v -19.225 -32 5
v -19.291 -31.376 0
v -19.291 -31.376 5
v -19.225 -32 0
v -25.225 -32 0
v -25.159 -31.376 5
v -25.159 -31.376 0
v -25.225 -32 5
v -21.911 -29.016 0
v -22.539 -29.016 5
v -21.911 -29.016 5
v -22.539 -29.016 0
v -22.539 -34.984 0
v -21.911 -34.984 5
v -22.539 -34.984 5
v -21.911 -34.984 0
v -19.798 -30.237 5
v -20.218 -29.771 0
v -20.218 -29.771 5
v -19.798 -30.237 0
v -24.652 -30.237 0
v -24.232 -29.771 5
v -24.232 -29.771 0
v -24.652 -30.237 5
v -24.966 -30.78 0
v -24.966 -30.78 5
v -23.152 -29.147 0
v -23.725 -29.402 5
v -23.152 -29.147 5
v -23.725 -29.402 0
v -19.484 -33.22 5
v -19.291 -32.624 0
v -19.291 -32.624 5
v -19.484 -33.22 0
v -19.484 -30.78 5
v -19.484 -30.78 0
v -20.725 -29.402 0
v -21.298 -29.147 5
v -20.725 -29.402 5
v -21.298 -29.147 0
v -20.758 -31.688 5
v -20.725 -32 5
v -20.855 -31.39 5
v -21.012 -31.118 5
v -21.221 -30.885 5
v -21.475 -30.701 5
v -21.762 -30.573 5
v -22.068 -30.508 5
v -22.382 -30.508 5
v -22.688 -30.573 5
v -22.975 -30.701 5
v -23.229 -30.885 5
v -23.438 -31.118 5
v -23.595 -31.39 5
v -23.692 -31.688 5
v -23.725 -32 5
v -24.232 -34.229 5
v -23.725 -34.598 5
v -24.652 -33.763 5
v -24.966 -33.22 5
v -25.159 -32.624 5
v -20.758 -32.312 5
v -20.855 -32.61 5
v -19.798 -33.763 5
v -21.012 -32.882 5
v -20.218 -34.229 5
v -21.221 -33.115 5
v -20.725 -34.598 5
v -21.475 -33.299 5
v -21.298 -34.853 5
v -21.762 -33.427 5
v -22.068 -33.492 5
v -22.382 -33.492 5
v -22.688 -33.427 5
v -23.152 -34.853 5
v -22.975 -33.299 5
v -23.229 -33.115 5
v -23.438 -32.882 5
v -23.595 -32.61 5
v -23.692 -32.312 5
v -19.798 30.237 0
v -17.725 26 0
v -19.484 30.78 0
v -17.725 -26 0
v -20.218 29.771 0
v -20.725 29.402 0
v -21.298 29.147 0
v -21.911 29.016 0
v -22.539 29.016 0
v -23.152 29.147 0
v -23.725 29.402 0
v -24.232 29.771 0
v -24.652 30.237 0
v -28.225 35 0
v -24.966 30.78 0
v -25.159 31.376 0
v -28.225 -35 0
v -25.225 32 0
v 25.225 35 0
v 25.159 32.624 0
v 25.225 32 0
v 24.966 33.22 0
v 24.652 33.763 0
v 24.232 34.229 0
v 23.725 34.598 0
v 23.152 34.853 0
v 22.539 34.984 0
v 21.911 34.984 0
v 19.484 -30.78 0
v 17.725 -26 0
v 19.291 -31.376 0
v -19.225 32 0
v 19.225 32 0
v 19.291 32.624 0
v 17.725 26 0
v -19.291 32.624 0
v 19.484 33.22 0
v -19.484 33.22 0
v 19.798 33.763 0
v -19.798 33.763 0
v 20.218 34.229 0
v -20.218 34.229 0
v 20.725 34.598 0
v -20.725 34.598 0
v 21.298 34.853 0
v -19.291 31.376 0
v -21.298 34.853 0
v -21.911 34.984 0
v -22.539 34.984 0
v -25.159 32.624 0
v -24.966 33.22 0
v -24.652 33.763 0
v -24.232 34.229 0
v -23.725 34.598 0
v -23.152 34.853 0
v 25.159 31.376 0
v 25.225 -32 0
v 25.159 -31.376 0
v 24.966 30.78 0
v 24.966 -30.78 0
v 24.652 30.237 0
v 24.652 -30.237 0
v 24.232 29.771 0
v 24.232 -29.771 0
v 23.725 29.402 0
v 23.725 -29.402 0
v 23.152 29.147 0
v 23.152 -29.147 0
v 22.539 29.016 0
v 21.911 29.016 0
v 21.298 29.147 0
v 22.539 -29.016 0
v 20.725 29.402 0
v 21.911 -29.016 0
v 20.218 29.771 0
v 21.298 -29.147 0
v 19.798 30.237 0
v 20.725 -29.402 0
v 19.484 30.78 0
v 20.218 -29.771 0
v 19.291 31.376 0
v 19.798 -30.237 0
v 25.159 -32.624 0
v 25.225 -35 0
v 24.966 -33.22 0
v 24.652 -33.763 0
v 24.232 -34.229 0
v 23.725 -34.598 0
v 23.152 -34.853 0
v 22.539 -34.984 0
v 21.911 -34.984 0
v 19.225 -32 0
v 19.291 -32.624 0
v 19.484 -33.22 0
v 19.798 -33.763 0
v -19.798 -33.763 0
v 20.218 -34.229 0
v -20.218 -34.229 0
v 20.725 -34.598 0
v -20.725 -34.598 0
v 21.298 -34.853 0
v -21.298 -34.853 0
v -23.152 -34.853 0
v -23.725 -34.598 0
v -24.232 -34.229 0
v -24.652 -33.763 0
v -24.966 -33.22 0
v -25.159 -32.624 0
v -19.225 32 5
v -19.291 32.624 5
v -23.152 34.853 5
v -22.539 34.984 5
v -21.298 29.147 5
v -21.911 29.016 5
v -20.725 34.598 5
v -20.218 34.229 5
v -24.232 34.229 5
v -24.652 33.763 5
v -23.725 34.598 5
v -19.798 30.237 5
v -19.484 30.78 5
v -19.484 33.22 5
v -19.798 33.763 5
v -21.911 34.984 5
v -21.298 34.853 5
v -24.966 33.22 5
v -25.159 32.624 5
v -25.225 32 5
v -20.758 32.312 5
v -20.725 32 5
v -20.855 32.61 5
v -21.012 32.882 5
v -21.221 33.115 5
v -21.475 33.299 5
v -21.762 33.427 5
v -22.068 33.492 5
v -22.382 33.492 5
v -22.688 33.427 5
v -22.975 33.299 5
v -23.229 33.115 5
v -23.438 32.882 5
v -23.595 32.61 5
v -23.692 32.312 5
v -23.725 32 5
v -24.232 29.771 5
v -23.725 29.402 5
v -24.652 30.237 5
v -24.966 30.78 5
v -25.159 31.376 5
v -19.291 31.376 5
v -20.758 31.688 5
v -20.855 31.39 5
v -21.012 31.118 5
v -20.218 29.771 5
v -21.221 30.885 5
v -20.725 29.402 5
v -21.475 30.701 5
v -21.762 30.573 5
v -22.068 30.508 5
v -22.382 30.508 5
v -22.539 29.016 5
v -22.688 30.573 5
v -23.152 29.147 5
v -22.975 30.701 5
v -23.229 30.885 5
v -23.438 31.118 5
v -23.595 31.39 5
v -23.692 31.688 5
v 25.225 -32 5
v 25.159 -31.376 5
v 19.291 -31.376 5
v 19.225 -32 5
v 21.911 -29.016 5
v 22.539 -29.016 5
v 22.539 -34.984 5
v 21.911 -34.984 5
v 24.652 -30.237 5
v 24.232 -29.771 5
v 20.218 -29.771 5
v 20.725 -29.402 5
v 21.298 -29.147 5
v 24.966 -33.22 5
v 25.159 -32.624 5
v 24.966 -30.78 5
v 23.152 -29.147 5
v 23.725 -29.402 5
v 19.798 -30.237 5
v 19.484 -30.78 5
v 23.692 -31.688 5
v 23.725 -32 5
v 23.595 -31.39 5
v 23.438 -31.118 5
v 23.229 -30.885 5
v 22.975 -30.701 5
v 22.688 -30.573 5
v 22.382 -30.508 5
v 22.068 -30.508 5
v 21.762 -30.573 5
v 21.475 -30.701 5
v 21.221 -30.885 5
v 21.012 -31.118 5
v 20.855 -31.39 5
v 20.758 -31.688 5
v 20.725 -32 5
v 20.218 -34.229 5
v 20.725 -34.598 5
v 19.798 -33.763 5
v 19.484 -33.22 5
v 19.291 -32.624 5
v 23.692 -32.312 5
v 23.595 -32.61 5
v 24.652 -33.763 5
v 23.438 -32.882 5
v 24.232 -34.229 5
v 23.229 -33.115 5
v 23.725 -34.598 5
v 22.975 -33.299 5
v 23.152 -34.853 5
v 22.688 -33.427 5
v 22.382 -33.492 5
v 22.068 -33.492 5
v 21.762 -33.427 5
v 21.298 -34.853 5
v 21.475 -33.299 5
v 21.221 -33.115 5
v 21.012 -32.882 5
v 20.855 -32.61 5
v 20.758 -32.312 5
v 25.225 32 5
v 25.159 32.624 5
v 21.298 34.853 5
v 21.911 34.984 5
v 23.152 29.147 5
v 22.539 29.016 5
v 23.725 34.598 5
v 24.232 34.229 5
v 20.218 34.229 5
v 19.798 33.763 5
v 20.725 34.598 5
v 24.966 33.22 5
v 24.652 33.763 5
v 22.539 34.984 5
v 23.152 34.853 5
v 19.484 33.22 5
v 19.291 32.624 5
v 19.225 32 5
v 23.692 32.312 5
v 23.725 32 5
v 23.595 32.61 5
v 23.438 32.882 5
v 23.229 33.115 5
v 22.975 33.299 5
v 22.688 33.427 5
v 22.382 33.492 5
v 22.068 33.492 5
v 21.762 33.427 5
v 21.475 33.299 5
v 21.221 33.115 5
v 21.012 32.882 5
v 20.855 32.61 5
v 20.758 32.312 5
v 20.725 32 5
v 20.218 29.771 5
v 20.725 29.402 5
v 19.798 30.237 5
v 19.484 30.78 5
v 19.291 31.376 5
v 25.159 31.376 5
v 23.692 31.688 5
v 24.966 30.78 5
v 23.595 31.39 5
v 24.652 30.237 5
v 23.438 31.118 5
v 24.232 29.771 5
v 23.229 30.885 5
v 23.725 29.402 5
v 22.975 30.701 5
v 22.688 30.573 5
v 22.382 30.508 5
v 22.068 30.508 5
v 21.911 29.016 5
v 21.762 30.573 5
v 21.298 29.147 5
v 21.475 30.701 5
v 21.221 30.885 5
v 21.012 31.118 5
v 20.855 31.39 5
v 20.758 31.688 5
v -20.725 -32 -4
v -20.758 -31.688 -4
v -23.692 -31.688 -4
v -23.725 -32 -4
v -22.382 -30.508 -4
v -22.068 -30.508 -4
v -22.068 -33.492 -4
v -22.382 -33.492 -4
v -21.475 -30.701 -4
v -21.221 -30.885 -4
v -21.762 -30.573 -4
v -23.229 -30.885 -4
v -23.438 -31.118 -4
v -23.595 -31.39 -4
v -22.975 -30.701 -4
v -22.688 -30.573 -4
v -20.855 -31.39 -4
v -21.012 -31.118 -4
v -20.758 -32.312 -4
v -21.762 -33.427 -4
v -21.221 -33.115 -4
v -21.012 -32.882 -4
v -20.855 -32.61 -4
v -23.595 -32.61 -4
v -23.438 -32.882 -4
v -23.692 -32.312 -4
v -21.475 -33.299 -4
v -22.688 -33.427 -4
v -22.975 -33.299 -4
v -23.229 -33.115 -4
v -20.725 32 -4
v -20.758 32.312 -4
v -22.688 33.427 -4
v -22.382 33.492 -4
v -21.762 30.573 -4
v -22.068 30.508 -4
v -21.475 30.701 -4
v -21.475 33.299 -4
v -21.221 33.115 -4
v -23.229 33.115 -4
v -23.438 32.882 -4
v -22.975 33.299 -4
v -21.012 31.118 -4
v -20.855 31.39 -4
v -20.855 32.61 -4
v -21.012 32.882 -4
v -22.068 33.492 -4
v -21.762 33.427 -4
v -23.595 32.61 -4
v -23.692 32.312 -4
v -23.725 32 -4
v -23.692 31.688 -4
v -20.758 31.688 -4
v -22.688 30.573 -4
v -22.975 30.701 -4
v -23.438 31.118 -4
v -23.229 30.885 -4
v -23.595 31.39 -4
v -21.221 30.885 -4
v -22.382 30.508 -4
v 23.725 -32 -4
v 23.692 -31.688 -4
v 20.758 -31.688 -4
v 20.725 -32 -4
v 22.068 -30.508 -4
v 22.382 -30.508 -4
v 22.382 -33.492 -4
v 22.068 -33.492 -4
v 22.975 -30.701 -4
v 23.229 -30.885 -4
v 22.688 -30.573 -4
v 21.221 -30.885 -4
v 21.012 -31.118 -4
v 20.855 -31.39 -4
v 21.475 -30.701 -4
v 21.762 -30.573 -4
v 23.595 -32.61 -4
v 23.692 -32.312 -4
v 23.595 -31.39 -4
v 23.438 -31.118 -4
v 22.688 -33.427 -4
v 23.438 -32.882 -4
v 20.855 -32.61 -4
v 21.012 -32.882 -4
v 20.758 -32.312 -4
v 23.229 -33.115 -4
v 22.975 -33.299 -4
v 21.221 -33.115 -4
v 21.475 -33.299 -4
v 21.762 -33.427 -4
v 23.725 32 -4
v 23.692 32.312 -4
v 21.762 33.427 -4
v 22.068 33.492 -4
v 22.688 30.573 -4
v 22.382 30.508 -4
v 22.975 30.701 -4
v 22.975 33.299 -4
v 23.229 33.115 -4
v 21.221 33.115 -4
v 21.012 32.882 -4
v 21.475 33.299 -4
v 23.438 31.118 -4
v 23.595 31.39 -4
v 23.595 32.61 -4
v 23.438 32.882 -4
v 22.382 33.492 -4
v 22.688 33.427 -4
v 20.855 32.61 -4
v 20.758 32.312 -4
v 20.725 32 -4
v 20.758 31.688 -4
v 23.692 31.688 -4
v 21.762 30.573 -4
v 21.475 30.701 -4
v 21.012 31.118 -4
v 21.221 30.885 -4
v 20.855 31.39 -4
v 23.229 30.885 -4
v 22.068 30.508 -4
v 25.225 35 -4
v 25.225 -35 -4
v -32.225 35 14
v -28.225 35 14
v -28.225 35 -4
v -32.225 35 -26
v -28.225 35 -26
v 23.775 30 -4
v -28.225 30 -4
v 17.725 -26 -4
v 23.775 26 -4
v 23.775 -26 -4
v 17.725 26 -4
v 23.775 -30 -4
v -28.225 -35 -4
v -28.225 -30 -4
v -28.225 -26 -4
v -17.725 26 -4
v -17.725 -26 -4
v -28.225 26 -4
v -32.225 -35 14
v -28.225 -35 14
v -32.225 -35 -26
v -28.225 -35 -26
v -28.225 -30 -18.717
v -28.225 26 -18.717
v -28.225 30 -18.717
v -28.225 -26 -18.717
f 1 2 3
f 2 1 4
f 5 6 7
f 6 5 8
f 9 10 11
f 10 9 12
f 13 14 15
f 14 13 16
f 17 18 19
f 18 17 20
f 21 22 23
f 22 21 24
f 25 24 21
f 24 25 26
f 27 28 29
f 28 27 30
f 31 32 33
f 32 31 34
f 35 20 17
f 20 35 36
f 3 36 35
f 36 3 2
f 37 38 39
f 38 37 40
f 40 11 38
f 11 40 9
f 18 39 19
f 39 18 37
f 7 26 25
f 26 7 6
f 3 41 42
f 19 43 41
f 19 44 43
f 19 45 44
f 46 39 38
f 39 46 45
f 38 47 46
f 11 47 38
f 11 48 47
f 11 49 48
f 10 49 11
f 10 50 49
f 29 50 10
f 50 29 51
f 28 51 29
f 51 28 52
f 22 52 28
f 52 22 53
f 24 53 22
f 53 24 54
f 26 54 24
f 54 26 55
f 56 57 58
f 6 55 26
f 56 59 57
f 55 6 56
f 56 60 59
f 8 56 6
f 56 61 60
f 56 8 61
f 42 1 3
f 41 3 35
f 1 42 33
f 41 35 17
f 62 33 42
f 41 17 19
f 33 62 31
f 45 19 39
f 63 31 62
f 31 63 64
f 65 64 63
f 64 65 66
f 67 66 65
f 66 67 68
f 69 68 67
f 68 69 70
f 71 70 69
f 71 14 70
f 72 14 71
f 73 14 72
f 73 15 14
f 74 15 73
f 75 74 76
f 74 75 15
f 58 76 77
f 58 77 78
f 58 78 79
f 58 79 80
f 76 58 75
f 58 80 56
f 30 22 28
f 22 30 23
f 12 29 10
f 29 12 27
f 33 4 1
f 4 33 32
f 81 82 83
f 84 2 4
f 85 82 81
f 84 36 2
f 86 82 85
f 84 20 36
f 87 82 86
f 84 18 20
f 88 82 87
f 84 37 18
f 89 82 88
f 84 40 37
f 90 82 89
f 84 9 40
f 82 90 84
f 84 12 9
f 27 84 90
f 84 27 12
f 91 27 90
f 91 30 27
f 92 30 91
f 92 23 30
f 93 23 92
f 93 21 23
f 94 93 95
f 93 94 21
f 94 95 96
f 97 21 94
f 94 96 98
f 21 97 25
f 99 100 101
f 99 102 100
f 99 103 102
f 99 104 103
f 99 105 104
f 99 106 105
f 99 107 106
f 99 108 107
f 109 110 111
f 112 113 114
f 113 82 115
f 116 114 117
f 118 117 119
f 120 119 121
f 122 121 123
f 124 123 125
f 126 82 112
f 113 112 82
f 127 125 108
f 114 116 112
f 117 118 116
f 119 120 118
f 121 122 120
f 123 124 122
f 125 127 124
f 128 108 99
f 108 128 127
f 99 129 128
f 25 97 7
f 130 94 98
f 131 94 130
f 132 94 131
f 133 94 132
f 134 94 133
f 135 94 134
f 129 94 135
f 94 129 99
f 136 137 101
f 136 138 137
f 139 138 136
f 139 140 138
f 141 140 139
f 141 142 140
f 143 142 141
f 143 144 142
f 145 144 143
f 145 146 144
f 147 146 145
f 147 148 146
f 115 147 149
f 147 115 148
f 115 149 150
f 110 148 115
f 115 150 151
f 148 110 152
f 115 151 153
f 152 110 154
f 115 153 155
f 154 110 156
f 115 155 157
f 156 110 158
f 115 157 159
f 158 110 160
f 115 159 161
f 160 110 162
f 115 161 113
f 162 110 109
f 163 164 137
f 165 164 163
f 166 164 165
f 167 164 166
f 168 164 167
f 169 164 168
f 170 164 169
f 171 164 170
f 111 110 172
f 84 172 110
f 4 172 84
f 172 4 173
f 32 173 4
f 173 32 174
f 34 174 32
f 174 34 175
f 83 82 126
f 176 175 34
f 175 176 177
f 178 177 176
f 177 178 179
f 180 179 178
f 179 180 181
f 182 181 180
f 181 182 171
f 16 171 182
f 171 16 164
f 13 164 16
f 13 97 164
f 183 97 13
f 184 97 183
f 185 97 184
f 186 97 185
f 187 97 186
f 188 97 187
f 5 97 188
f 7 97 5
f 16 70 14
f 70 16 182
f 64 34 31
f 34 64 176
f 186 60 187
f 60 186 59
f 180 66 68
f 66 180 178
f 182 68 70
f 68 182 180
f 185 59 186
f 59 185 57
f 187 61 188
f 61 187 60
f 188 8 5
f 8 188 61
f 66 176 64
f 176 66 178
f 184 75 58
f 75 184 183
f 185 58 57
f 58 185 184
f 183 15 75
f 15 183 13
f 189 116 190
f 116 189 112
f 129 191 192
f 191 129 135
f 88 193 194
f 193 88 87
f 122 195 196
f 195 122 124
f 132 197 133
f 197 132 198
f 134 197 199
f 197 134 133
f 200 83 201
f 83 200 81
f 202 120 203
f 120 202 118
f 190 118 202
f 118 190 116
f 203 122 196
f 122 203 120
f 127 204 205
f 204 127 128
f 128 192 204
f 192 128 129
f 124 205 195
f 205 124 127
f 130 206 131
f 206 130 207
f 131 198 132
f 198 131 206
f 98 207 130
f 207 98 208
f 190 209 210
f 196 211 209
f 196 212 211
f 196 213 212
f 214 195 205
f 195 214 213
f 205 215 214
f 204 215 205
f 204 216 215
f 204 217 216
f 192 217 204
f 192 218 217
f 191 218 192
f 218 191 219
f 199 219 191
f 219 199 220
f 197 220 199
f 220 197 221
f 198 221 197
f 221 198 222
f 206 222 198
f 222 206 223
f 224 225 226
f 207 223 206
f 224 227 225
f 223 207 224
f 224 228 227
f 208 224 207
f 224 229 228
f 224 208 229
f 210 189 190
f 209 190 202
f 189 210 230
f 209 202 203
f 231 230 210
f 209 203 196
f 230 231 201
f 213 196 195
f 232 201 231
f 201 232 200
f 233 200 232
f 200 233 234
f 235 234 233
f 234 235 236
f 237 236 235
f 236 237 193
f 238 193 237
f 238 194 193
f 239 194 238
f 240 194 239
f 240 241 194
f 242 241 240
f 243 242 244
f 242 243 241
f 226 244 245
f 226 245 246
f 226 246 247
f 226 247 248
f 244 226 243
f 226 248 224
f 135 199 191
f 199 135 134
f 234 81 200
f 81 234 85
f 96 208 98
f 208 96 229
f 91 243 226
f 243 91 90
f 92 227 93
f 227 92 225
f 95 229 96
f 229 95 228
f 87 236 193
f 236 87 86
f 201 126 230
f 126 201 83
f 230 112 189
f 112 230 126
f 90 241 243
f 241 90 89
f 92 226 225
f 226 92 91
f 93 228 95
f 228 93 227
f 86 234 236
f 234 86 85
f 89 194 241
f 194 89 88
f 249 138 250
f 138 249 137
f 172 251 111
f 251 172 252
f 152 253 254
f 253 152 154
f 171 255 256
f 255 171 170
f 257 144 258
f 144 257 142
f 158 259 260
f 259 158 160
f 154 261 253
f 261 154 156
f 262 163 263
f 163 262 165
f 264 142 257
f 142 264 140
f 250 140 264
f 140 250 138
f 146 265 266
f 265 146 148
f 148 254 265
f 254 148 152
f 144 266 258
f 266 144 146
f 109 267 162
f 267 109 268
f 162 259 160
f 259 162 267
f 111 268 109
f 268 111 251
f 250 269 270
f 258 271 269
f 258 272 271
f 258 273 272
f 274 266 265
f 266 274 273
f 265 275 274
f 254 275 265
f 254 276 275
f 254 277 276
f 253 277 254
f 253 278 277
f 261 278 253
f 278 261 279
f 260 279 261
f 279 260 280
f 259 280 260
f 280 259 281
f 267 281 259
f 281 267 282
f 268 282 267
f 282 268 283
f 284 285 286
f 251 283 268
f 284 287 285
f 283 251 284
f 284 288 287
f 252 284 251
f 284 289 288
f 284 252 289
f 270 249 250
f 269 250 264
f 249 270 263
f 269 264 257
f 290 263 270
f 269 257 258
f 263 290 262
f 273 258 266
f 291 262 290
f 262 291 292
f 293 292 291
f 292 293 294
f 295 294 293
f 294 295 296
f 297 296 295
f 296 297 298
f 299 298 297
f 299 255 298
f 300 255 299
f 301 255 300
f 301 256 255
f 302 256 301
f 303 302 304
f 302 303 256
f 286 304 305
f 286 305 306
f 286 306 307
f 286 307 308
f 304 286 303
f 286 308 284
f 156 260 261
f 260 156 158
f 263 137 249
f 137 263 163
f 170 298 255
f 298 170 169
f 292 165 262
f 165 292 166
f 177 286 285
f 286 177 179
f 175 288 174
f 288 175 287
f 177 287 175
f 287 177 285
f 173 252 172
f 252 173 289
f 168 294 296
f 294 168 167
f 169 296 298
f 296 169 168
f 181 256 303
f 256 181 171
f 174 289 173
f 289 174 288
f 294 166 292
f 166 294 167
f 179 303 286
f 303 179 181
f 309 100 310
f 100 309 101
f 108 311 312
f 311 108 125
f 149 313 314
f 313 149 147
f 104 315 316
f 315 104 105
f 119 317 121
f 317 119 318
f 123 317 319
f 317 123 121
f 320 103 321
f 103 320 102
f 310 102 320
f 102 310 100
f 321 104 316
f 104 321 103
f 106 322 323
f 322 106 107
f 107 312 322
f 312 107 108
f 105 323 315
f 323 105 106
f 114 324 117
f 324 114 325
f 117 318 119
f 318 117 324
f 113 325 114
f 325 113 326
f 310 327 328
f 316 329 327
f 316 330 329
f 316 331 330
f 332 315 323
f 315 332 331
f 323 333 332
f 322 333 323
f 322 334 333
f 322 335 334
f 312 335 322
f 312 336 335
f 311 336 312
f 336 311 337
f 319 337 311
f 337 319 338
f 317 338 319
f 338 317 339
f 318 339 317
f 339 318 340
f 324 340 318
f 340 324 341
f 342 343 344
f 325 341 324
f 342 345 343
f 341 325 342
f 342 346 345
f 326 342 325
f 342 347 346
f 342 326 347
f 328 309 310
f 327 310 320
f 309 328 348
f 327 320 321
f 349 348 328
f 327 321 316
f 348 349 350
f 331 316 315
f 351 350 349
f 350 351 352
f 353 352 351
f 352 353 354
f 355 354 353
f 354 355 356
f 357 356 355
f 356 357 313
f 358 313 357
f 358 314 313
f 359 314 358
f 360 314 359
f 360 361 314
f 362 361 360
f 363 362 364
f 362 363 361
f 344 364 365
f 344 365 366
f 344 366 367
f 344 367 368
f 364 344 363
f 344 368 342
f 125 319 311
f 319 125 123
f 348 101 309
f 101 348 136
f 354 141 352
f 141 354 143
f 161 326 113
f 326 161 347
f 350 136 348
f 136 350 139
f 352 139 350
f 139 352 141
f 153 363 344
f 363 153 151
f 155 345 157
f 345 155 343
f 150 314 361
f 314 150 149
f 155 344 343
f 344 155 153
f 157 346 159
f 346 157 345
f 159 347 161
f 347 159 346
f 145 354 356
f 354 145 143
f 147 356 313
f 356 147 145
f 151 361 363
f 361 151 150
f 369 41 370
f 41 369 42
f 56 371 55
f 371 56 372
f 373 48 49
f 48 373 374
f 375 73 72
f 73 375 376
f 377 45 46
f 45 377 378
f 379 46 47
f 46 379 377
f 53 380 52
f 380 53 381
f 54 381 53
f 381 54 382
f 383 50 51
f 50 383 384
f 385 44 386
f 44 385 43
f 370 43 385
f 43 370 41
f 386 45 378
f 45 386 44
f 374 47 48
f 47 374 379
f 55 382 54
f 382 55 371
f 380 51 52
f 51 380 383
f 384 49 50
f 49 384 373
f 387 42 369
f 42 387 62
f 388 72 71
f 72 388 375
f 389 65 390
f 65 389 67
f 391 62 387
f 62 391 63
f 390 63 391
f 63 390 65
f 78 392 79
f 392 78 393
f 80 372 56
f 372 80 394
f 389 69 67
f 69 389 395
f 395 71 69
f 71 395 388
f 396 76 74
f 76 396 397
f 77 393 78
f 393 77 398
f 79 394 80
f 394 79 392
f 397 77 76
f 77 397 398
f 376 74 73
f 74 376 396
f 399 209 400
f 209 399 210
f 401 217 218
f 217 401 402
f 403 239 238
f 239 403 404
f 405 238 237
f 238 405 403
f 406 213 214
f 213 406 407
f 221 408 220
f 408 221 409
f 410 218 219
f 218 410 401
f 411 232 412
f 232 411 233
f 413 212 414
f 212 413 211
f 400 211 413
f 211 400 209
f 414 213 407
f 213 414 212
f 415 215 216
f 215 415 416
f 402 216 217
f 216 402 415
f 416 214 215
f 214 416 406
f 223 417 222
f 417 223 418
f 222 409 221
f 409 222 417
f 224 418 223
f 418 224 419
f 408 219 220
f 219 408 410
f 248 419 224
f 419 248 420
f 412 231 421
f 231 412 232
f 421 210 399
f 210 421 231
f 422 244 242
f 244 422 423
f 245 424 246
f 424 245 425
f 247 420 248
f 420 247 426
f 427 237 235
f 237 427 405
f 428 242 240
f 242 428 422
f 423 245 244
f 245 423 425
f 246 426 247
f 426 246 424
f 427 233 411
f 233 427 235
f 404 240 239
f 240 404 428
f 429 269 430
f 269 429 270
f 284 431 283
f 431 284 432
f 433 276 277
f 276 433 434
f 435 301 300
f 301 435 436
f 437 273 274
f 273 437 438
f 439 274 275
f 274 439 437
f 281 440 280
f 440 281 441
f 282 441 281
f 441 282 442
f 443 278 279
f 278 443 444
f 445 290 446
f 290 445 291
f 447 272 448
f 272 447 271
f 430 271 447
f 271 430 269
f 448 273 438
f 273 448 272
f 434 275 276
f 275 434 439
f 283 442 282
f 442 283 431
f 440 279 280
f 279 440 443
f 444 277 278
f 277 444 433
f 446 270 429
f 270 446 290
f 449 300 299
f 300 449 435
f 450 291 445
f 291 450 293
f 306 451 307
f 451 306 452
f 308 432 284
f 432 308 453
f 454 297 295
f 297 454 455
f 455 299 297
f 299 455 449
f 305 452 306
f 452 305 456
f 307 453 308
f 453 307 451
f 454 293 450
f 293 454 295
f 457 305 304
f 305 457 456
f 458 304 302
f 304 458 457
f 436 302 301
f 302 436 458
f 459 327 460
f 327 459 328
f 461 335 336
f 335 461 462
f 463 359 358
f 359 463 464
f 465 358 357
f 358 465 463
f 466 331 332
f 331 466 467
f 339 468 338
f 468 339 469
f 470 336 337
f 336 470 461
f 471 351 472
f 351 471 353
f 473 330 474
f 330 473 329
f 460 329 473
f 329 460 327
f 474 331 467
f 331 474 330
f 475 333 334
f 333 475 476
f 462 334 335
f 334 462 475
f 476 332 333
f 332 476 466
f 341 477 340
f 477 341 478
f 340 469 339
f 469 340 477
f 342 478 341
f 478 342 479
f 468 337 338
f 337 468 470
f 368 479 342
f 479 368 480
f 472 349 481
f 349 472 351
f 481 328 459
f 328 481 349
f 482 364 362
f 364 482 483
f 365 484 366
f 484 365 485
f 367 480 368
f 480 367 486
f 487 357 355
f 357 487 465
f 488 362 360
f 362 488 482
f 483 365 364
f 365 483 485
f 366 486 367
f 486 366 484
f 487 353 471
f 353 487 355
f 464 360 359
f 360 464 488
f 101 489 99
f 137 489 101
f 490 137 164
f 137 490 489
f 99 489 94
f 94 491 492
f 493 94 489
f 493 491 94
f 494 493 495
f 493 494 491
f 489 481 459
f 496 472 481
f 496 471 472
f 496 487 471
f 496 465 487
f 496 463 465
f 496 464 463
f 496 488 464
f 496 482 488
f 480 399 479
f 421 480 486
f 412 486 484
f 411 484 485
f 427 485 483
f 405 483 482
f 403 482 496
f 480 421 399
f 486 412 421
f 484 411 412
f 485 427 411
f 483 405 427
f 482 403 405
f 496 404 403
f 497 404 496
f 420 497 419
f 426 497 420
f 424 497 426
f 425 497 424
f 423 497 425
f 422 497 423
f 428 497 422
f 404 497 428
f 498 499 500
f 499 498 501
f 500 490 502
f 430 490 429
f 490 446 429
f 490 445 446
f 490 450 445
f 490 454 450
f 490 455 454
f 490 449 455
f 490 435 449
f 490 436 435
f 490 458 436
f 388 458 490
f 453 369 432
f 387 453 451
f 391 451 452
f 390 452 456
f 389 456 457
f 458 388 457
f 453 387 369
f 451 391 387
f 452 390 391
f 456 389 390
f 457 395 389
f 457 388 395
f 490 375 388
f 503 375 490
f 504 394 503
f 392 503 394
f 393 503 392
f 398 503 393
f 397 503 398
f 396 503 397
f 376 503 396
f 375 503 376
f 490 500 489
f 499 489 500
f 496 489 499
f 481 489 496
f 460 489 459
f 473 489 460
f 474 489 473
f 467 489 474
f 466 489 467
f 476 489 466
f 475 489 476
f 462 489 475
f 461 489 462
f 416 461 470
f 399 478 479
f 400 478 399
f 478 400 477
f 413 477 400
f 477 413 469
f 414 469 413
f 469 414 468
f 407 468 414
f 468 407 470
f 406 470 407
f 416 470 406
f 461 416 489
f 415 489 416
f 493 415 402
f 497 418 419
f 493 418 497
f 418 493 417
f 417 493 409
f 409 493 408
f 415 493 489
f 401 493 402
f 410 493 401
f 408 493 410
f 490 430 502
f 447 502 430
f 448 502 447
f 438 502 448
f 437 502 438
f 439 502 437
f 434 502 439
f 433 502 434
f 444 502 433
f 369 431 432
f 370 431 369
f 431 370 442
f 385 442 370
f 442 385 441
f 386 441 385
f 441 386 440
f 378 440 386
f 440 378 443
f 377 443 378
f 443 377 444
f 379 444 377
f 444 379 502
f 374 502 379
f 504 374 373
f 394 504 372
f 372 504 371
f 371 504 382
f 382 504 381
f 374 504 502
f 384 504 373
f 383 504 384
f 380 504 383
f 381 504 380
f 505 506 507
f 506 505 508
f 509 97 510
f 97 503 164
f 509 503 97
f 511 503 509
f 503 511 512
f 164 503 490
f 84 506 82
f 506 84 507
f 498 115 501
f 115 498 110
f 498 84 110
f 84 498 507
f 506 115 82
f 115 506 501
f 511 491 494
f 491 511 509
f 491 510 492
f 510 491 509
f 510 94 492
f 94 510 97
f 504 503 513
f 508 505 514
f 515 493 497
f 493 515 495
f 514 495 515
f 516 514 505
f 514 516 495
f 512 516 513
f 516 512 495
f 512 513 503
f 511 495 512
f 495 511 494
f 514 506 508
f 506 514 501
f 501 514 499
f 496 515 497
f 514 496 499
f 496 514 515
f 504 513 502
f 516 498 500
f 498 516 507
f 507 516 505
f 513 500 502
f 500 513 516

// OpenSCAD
$fn = 30;

board_x = 44.45;
board_y = 64.0;

post_r = 3.0;

module board_post()
{
   cylinder(h=5.0, d=2*post_r);
}

module board_post_hole()
{
   translate([0,0,-6]) cylinder(h=15, d=3.0);   
}

module board_posts()
{
    translate([-board_x/2,-board_y/2]) { board_post(); }
    translate([-board_x/2, board_y/2]) { board_post(); }
    translate([ board_x/2,-board_y/2]) { board_post(); }
    translate([ board_x/2, board_y/2]) { board_post(); }
}

module board_post_holes()
{
    translate([-board_x/2,-board_y/2]) { board_post_hole(); }
    translate([-board_x/2, board_y/2]) { board_post_hole(); }
    translate([ board_x/2,-board_y/2]) { board_post_hole(); }
    translate([ board_x/2, board_y/2]) { board_post_hole(); }
}

module triangle() {
    translate([-(board_x/2+post_r+2+2),-2,-4])
        rotate([90,-90,180])
            linear_extrude(4)
                polygon(points=[[0,0],[0,53],[-15,0]]);
}


difference() {
    union() {
        board_posts();
        
        translate([0,0,-2]) {
            difference() {
                cube([board_x+(2*post_r), board_y+(2*post_r), 4.0], center=true);
                cube([board_x-(3*post_r), board_y-(2*post_r+6), 4.0], center=true);
            }
        }
        
        #translate([-(board_x/2+post_r+1.5),0,-2]) cube([4, board_y+(2*post_r), 4.0], center=true);
        translate([-(board_x/2+post_r+5),0,-6]) cube([4, board_y+(2*post_r), 40.0], center=true);
        
        translate([0,board_y/2-4,0]) triangle();
        translate([0,-(board_y/2-4),0]) triangle();

    }
    #board_post_holes();
}
